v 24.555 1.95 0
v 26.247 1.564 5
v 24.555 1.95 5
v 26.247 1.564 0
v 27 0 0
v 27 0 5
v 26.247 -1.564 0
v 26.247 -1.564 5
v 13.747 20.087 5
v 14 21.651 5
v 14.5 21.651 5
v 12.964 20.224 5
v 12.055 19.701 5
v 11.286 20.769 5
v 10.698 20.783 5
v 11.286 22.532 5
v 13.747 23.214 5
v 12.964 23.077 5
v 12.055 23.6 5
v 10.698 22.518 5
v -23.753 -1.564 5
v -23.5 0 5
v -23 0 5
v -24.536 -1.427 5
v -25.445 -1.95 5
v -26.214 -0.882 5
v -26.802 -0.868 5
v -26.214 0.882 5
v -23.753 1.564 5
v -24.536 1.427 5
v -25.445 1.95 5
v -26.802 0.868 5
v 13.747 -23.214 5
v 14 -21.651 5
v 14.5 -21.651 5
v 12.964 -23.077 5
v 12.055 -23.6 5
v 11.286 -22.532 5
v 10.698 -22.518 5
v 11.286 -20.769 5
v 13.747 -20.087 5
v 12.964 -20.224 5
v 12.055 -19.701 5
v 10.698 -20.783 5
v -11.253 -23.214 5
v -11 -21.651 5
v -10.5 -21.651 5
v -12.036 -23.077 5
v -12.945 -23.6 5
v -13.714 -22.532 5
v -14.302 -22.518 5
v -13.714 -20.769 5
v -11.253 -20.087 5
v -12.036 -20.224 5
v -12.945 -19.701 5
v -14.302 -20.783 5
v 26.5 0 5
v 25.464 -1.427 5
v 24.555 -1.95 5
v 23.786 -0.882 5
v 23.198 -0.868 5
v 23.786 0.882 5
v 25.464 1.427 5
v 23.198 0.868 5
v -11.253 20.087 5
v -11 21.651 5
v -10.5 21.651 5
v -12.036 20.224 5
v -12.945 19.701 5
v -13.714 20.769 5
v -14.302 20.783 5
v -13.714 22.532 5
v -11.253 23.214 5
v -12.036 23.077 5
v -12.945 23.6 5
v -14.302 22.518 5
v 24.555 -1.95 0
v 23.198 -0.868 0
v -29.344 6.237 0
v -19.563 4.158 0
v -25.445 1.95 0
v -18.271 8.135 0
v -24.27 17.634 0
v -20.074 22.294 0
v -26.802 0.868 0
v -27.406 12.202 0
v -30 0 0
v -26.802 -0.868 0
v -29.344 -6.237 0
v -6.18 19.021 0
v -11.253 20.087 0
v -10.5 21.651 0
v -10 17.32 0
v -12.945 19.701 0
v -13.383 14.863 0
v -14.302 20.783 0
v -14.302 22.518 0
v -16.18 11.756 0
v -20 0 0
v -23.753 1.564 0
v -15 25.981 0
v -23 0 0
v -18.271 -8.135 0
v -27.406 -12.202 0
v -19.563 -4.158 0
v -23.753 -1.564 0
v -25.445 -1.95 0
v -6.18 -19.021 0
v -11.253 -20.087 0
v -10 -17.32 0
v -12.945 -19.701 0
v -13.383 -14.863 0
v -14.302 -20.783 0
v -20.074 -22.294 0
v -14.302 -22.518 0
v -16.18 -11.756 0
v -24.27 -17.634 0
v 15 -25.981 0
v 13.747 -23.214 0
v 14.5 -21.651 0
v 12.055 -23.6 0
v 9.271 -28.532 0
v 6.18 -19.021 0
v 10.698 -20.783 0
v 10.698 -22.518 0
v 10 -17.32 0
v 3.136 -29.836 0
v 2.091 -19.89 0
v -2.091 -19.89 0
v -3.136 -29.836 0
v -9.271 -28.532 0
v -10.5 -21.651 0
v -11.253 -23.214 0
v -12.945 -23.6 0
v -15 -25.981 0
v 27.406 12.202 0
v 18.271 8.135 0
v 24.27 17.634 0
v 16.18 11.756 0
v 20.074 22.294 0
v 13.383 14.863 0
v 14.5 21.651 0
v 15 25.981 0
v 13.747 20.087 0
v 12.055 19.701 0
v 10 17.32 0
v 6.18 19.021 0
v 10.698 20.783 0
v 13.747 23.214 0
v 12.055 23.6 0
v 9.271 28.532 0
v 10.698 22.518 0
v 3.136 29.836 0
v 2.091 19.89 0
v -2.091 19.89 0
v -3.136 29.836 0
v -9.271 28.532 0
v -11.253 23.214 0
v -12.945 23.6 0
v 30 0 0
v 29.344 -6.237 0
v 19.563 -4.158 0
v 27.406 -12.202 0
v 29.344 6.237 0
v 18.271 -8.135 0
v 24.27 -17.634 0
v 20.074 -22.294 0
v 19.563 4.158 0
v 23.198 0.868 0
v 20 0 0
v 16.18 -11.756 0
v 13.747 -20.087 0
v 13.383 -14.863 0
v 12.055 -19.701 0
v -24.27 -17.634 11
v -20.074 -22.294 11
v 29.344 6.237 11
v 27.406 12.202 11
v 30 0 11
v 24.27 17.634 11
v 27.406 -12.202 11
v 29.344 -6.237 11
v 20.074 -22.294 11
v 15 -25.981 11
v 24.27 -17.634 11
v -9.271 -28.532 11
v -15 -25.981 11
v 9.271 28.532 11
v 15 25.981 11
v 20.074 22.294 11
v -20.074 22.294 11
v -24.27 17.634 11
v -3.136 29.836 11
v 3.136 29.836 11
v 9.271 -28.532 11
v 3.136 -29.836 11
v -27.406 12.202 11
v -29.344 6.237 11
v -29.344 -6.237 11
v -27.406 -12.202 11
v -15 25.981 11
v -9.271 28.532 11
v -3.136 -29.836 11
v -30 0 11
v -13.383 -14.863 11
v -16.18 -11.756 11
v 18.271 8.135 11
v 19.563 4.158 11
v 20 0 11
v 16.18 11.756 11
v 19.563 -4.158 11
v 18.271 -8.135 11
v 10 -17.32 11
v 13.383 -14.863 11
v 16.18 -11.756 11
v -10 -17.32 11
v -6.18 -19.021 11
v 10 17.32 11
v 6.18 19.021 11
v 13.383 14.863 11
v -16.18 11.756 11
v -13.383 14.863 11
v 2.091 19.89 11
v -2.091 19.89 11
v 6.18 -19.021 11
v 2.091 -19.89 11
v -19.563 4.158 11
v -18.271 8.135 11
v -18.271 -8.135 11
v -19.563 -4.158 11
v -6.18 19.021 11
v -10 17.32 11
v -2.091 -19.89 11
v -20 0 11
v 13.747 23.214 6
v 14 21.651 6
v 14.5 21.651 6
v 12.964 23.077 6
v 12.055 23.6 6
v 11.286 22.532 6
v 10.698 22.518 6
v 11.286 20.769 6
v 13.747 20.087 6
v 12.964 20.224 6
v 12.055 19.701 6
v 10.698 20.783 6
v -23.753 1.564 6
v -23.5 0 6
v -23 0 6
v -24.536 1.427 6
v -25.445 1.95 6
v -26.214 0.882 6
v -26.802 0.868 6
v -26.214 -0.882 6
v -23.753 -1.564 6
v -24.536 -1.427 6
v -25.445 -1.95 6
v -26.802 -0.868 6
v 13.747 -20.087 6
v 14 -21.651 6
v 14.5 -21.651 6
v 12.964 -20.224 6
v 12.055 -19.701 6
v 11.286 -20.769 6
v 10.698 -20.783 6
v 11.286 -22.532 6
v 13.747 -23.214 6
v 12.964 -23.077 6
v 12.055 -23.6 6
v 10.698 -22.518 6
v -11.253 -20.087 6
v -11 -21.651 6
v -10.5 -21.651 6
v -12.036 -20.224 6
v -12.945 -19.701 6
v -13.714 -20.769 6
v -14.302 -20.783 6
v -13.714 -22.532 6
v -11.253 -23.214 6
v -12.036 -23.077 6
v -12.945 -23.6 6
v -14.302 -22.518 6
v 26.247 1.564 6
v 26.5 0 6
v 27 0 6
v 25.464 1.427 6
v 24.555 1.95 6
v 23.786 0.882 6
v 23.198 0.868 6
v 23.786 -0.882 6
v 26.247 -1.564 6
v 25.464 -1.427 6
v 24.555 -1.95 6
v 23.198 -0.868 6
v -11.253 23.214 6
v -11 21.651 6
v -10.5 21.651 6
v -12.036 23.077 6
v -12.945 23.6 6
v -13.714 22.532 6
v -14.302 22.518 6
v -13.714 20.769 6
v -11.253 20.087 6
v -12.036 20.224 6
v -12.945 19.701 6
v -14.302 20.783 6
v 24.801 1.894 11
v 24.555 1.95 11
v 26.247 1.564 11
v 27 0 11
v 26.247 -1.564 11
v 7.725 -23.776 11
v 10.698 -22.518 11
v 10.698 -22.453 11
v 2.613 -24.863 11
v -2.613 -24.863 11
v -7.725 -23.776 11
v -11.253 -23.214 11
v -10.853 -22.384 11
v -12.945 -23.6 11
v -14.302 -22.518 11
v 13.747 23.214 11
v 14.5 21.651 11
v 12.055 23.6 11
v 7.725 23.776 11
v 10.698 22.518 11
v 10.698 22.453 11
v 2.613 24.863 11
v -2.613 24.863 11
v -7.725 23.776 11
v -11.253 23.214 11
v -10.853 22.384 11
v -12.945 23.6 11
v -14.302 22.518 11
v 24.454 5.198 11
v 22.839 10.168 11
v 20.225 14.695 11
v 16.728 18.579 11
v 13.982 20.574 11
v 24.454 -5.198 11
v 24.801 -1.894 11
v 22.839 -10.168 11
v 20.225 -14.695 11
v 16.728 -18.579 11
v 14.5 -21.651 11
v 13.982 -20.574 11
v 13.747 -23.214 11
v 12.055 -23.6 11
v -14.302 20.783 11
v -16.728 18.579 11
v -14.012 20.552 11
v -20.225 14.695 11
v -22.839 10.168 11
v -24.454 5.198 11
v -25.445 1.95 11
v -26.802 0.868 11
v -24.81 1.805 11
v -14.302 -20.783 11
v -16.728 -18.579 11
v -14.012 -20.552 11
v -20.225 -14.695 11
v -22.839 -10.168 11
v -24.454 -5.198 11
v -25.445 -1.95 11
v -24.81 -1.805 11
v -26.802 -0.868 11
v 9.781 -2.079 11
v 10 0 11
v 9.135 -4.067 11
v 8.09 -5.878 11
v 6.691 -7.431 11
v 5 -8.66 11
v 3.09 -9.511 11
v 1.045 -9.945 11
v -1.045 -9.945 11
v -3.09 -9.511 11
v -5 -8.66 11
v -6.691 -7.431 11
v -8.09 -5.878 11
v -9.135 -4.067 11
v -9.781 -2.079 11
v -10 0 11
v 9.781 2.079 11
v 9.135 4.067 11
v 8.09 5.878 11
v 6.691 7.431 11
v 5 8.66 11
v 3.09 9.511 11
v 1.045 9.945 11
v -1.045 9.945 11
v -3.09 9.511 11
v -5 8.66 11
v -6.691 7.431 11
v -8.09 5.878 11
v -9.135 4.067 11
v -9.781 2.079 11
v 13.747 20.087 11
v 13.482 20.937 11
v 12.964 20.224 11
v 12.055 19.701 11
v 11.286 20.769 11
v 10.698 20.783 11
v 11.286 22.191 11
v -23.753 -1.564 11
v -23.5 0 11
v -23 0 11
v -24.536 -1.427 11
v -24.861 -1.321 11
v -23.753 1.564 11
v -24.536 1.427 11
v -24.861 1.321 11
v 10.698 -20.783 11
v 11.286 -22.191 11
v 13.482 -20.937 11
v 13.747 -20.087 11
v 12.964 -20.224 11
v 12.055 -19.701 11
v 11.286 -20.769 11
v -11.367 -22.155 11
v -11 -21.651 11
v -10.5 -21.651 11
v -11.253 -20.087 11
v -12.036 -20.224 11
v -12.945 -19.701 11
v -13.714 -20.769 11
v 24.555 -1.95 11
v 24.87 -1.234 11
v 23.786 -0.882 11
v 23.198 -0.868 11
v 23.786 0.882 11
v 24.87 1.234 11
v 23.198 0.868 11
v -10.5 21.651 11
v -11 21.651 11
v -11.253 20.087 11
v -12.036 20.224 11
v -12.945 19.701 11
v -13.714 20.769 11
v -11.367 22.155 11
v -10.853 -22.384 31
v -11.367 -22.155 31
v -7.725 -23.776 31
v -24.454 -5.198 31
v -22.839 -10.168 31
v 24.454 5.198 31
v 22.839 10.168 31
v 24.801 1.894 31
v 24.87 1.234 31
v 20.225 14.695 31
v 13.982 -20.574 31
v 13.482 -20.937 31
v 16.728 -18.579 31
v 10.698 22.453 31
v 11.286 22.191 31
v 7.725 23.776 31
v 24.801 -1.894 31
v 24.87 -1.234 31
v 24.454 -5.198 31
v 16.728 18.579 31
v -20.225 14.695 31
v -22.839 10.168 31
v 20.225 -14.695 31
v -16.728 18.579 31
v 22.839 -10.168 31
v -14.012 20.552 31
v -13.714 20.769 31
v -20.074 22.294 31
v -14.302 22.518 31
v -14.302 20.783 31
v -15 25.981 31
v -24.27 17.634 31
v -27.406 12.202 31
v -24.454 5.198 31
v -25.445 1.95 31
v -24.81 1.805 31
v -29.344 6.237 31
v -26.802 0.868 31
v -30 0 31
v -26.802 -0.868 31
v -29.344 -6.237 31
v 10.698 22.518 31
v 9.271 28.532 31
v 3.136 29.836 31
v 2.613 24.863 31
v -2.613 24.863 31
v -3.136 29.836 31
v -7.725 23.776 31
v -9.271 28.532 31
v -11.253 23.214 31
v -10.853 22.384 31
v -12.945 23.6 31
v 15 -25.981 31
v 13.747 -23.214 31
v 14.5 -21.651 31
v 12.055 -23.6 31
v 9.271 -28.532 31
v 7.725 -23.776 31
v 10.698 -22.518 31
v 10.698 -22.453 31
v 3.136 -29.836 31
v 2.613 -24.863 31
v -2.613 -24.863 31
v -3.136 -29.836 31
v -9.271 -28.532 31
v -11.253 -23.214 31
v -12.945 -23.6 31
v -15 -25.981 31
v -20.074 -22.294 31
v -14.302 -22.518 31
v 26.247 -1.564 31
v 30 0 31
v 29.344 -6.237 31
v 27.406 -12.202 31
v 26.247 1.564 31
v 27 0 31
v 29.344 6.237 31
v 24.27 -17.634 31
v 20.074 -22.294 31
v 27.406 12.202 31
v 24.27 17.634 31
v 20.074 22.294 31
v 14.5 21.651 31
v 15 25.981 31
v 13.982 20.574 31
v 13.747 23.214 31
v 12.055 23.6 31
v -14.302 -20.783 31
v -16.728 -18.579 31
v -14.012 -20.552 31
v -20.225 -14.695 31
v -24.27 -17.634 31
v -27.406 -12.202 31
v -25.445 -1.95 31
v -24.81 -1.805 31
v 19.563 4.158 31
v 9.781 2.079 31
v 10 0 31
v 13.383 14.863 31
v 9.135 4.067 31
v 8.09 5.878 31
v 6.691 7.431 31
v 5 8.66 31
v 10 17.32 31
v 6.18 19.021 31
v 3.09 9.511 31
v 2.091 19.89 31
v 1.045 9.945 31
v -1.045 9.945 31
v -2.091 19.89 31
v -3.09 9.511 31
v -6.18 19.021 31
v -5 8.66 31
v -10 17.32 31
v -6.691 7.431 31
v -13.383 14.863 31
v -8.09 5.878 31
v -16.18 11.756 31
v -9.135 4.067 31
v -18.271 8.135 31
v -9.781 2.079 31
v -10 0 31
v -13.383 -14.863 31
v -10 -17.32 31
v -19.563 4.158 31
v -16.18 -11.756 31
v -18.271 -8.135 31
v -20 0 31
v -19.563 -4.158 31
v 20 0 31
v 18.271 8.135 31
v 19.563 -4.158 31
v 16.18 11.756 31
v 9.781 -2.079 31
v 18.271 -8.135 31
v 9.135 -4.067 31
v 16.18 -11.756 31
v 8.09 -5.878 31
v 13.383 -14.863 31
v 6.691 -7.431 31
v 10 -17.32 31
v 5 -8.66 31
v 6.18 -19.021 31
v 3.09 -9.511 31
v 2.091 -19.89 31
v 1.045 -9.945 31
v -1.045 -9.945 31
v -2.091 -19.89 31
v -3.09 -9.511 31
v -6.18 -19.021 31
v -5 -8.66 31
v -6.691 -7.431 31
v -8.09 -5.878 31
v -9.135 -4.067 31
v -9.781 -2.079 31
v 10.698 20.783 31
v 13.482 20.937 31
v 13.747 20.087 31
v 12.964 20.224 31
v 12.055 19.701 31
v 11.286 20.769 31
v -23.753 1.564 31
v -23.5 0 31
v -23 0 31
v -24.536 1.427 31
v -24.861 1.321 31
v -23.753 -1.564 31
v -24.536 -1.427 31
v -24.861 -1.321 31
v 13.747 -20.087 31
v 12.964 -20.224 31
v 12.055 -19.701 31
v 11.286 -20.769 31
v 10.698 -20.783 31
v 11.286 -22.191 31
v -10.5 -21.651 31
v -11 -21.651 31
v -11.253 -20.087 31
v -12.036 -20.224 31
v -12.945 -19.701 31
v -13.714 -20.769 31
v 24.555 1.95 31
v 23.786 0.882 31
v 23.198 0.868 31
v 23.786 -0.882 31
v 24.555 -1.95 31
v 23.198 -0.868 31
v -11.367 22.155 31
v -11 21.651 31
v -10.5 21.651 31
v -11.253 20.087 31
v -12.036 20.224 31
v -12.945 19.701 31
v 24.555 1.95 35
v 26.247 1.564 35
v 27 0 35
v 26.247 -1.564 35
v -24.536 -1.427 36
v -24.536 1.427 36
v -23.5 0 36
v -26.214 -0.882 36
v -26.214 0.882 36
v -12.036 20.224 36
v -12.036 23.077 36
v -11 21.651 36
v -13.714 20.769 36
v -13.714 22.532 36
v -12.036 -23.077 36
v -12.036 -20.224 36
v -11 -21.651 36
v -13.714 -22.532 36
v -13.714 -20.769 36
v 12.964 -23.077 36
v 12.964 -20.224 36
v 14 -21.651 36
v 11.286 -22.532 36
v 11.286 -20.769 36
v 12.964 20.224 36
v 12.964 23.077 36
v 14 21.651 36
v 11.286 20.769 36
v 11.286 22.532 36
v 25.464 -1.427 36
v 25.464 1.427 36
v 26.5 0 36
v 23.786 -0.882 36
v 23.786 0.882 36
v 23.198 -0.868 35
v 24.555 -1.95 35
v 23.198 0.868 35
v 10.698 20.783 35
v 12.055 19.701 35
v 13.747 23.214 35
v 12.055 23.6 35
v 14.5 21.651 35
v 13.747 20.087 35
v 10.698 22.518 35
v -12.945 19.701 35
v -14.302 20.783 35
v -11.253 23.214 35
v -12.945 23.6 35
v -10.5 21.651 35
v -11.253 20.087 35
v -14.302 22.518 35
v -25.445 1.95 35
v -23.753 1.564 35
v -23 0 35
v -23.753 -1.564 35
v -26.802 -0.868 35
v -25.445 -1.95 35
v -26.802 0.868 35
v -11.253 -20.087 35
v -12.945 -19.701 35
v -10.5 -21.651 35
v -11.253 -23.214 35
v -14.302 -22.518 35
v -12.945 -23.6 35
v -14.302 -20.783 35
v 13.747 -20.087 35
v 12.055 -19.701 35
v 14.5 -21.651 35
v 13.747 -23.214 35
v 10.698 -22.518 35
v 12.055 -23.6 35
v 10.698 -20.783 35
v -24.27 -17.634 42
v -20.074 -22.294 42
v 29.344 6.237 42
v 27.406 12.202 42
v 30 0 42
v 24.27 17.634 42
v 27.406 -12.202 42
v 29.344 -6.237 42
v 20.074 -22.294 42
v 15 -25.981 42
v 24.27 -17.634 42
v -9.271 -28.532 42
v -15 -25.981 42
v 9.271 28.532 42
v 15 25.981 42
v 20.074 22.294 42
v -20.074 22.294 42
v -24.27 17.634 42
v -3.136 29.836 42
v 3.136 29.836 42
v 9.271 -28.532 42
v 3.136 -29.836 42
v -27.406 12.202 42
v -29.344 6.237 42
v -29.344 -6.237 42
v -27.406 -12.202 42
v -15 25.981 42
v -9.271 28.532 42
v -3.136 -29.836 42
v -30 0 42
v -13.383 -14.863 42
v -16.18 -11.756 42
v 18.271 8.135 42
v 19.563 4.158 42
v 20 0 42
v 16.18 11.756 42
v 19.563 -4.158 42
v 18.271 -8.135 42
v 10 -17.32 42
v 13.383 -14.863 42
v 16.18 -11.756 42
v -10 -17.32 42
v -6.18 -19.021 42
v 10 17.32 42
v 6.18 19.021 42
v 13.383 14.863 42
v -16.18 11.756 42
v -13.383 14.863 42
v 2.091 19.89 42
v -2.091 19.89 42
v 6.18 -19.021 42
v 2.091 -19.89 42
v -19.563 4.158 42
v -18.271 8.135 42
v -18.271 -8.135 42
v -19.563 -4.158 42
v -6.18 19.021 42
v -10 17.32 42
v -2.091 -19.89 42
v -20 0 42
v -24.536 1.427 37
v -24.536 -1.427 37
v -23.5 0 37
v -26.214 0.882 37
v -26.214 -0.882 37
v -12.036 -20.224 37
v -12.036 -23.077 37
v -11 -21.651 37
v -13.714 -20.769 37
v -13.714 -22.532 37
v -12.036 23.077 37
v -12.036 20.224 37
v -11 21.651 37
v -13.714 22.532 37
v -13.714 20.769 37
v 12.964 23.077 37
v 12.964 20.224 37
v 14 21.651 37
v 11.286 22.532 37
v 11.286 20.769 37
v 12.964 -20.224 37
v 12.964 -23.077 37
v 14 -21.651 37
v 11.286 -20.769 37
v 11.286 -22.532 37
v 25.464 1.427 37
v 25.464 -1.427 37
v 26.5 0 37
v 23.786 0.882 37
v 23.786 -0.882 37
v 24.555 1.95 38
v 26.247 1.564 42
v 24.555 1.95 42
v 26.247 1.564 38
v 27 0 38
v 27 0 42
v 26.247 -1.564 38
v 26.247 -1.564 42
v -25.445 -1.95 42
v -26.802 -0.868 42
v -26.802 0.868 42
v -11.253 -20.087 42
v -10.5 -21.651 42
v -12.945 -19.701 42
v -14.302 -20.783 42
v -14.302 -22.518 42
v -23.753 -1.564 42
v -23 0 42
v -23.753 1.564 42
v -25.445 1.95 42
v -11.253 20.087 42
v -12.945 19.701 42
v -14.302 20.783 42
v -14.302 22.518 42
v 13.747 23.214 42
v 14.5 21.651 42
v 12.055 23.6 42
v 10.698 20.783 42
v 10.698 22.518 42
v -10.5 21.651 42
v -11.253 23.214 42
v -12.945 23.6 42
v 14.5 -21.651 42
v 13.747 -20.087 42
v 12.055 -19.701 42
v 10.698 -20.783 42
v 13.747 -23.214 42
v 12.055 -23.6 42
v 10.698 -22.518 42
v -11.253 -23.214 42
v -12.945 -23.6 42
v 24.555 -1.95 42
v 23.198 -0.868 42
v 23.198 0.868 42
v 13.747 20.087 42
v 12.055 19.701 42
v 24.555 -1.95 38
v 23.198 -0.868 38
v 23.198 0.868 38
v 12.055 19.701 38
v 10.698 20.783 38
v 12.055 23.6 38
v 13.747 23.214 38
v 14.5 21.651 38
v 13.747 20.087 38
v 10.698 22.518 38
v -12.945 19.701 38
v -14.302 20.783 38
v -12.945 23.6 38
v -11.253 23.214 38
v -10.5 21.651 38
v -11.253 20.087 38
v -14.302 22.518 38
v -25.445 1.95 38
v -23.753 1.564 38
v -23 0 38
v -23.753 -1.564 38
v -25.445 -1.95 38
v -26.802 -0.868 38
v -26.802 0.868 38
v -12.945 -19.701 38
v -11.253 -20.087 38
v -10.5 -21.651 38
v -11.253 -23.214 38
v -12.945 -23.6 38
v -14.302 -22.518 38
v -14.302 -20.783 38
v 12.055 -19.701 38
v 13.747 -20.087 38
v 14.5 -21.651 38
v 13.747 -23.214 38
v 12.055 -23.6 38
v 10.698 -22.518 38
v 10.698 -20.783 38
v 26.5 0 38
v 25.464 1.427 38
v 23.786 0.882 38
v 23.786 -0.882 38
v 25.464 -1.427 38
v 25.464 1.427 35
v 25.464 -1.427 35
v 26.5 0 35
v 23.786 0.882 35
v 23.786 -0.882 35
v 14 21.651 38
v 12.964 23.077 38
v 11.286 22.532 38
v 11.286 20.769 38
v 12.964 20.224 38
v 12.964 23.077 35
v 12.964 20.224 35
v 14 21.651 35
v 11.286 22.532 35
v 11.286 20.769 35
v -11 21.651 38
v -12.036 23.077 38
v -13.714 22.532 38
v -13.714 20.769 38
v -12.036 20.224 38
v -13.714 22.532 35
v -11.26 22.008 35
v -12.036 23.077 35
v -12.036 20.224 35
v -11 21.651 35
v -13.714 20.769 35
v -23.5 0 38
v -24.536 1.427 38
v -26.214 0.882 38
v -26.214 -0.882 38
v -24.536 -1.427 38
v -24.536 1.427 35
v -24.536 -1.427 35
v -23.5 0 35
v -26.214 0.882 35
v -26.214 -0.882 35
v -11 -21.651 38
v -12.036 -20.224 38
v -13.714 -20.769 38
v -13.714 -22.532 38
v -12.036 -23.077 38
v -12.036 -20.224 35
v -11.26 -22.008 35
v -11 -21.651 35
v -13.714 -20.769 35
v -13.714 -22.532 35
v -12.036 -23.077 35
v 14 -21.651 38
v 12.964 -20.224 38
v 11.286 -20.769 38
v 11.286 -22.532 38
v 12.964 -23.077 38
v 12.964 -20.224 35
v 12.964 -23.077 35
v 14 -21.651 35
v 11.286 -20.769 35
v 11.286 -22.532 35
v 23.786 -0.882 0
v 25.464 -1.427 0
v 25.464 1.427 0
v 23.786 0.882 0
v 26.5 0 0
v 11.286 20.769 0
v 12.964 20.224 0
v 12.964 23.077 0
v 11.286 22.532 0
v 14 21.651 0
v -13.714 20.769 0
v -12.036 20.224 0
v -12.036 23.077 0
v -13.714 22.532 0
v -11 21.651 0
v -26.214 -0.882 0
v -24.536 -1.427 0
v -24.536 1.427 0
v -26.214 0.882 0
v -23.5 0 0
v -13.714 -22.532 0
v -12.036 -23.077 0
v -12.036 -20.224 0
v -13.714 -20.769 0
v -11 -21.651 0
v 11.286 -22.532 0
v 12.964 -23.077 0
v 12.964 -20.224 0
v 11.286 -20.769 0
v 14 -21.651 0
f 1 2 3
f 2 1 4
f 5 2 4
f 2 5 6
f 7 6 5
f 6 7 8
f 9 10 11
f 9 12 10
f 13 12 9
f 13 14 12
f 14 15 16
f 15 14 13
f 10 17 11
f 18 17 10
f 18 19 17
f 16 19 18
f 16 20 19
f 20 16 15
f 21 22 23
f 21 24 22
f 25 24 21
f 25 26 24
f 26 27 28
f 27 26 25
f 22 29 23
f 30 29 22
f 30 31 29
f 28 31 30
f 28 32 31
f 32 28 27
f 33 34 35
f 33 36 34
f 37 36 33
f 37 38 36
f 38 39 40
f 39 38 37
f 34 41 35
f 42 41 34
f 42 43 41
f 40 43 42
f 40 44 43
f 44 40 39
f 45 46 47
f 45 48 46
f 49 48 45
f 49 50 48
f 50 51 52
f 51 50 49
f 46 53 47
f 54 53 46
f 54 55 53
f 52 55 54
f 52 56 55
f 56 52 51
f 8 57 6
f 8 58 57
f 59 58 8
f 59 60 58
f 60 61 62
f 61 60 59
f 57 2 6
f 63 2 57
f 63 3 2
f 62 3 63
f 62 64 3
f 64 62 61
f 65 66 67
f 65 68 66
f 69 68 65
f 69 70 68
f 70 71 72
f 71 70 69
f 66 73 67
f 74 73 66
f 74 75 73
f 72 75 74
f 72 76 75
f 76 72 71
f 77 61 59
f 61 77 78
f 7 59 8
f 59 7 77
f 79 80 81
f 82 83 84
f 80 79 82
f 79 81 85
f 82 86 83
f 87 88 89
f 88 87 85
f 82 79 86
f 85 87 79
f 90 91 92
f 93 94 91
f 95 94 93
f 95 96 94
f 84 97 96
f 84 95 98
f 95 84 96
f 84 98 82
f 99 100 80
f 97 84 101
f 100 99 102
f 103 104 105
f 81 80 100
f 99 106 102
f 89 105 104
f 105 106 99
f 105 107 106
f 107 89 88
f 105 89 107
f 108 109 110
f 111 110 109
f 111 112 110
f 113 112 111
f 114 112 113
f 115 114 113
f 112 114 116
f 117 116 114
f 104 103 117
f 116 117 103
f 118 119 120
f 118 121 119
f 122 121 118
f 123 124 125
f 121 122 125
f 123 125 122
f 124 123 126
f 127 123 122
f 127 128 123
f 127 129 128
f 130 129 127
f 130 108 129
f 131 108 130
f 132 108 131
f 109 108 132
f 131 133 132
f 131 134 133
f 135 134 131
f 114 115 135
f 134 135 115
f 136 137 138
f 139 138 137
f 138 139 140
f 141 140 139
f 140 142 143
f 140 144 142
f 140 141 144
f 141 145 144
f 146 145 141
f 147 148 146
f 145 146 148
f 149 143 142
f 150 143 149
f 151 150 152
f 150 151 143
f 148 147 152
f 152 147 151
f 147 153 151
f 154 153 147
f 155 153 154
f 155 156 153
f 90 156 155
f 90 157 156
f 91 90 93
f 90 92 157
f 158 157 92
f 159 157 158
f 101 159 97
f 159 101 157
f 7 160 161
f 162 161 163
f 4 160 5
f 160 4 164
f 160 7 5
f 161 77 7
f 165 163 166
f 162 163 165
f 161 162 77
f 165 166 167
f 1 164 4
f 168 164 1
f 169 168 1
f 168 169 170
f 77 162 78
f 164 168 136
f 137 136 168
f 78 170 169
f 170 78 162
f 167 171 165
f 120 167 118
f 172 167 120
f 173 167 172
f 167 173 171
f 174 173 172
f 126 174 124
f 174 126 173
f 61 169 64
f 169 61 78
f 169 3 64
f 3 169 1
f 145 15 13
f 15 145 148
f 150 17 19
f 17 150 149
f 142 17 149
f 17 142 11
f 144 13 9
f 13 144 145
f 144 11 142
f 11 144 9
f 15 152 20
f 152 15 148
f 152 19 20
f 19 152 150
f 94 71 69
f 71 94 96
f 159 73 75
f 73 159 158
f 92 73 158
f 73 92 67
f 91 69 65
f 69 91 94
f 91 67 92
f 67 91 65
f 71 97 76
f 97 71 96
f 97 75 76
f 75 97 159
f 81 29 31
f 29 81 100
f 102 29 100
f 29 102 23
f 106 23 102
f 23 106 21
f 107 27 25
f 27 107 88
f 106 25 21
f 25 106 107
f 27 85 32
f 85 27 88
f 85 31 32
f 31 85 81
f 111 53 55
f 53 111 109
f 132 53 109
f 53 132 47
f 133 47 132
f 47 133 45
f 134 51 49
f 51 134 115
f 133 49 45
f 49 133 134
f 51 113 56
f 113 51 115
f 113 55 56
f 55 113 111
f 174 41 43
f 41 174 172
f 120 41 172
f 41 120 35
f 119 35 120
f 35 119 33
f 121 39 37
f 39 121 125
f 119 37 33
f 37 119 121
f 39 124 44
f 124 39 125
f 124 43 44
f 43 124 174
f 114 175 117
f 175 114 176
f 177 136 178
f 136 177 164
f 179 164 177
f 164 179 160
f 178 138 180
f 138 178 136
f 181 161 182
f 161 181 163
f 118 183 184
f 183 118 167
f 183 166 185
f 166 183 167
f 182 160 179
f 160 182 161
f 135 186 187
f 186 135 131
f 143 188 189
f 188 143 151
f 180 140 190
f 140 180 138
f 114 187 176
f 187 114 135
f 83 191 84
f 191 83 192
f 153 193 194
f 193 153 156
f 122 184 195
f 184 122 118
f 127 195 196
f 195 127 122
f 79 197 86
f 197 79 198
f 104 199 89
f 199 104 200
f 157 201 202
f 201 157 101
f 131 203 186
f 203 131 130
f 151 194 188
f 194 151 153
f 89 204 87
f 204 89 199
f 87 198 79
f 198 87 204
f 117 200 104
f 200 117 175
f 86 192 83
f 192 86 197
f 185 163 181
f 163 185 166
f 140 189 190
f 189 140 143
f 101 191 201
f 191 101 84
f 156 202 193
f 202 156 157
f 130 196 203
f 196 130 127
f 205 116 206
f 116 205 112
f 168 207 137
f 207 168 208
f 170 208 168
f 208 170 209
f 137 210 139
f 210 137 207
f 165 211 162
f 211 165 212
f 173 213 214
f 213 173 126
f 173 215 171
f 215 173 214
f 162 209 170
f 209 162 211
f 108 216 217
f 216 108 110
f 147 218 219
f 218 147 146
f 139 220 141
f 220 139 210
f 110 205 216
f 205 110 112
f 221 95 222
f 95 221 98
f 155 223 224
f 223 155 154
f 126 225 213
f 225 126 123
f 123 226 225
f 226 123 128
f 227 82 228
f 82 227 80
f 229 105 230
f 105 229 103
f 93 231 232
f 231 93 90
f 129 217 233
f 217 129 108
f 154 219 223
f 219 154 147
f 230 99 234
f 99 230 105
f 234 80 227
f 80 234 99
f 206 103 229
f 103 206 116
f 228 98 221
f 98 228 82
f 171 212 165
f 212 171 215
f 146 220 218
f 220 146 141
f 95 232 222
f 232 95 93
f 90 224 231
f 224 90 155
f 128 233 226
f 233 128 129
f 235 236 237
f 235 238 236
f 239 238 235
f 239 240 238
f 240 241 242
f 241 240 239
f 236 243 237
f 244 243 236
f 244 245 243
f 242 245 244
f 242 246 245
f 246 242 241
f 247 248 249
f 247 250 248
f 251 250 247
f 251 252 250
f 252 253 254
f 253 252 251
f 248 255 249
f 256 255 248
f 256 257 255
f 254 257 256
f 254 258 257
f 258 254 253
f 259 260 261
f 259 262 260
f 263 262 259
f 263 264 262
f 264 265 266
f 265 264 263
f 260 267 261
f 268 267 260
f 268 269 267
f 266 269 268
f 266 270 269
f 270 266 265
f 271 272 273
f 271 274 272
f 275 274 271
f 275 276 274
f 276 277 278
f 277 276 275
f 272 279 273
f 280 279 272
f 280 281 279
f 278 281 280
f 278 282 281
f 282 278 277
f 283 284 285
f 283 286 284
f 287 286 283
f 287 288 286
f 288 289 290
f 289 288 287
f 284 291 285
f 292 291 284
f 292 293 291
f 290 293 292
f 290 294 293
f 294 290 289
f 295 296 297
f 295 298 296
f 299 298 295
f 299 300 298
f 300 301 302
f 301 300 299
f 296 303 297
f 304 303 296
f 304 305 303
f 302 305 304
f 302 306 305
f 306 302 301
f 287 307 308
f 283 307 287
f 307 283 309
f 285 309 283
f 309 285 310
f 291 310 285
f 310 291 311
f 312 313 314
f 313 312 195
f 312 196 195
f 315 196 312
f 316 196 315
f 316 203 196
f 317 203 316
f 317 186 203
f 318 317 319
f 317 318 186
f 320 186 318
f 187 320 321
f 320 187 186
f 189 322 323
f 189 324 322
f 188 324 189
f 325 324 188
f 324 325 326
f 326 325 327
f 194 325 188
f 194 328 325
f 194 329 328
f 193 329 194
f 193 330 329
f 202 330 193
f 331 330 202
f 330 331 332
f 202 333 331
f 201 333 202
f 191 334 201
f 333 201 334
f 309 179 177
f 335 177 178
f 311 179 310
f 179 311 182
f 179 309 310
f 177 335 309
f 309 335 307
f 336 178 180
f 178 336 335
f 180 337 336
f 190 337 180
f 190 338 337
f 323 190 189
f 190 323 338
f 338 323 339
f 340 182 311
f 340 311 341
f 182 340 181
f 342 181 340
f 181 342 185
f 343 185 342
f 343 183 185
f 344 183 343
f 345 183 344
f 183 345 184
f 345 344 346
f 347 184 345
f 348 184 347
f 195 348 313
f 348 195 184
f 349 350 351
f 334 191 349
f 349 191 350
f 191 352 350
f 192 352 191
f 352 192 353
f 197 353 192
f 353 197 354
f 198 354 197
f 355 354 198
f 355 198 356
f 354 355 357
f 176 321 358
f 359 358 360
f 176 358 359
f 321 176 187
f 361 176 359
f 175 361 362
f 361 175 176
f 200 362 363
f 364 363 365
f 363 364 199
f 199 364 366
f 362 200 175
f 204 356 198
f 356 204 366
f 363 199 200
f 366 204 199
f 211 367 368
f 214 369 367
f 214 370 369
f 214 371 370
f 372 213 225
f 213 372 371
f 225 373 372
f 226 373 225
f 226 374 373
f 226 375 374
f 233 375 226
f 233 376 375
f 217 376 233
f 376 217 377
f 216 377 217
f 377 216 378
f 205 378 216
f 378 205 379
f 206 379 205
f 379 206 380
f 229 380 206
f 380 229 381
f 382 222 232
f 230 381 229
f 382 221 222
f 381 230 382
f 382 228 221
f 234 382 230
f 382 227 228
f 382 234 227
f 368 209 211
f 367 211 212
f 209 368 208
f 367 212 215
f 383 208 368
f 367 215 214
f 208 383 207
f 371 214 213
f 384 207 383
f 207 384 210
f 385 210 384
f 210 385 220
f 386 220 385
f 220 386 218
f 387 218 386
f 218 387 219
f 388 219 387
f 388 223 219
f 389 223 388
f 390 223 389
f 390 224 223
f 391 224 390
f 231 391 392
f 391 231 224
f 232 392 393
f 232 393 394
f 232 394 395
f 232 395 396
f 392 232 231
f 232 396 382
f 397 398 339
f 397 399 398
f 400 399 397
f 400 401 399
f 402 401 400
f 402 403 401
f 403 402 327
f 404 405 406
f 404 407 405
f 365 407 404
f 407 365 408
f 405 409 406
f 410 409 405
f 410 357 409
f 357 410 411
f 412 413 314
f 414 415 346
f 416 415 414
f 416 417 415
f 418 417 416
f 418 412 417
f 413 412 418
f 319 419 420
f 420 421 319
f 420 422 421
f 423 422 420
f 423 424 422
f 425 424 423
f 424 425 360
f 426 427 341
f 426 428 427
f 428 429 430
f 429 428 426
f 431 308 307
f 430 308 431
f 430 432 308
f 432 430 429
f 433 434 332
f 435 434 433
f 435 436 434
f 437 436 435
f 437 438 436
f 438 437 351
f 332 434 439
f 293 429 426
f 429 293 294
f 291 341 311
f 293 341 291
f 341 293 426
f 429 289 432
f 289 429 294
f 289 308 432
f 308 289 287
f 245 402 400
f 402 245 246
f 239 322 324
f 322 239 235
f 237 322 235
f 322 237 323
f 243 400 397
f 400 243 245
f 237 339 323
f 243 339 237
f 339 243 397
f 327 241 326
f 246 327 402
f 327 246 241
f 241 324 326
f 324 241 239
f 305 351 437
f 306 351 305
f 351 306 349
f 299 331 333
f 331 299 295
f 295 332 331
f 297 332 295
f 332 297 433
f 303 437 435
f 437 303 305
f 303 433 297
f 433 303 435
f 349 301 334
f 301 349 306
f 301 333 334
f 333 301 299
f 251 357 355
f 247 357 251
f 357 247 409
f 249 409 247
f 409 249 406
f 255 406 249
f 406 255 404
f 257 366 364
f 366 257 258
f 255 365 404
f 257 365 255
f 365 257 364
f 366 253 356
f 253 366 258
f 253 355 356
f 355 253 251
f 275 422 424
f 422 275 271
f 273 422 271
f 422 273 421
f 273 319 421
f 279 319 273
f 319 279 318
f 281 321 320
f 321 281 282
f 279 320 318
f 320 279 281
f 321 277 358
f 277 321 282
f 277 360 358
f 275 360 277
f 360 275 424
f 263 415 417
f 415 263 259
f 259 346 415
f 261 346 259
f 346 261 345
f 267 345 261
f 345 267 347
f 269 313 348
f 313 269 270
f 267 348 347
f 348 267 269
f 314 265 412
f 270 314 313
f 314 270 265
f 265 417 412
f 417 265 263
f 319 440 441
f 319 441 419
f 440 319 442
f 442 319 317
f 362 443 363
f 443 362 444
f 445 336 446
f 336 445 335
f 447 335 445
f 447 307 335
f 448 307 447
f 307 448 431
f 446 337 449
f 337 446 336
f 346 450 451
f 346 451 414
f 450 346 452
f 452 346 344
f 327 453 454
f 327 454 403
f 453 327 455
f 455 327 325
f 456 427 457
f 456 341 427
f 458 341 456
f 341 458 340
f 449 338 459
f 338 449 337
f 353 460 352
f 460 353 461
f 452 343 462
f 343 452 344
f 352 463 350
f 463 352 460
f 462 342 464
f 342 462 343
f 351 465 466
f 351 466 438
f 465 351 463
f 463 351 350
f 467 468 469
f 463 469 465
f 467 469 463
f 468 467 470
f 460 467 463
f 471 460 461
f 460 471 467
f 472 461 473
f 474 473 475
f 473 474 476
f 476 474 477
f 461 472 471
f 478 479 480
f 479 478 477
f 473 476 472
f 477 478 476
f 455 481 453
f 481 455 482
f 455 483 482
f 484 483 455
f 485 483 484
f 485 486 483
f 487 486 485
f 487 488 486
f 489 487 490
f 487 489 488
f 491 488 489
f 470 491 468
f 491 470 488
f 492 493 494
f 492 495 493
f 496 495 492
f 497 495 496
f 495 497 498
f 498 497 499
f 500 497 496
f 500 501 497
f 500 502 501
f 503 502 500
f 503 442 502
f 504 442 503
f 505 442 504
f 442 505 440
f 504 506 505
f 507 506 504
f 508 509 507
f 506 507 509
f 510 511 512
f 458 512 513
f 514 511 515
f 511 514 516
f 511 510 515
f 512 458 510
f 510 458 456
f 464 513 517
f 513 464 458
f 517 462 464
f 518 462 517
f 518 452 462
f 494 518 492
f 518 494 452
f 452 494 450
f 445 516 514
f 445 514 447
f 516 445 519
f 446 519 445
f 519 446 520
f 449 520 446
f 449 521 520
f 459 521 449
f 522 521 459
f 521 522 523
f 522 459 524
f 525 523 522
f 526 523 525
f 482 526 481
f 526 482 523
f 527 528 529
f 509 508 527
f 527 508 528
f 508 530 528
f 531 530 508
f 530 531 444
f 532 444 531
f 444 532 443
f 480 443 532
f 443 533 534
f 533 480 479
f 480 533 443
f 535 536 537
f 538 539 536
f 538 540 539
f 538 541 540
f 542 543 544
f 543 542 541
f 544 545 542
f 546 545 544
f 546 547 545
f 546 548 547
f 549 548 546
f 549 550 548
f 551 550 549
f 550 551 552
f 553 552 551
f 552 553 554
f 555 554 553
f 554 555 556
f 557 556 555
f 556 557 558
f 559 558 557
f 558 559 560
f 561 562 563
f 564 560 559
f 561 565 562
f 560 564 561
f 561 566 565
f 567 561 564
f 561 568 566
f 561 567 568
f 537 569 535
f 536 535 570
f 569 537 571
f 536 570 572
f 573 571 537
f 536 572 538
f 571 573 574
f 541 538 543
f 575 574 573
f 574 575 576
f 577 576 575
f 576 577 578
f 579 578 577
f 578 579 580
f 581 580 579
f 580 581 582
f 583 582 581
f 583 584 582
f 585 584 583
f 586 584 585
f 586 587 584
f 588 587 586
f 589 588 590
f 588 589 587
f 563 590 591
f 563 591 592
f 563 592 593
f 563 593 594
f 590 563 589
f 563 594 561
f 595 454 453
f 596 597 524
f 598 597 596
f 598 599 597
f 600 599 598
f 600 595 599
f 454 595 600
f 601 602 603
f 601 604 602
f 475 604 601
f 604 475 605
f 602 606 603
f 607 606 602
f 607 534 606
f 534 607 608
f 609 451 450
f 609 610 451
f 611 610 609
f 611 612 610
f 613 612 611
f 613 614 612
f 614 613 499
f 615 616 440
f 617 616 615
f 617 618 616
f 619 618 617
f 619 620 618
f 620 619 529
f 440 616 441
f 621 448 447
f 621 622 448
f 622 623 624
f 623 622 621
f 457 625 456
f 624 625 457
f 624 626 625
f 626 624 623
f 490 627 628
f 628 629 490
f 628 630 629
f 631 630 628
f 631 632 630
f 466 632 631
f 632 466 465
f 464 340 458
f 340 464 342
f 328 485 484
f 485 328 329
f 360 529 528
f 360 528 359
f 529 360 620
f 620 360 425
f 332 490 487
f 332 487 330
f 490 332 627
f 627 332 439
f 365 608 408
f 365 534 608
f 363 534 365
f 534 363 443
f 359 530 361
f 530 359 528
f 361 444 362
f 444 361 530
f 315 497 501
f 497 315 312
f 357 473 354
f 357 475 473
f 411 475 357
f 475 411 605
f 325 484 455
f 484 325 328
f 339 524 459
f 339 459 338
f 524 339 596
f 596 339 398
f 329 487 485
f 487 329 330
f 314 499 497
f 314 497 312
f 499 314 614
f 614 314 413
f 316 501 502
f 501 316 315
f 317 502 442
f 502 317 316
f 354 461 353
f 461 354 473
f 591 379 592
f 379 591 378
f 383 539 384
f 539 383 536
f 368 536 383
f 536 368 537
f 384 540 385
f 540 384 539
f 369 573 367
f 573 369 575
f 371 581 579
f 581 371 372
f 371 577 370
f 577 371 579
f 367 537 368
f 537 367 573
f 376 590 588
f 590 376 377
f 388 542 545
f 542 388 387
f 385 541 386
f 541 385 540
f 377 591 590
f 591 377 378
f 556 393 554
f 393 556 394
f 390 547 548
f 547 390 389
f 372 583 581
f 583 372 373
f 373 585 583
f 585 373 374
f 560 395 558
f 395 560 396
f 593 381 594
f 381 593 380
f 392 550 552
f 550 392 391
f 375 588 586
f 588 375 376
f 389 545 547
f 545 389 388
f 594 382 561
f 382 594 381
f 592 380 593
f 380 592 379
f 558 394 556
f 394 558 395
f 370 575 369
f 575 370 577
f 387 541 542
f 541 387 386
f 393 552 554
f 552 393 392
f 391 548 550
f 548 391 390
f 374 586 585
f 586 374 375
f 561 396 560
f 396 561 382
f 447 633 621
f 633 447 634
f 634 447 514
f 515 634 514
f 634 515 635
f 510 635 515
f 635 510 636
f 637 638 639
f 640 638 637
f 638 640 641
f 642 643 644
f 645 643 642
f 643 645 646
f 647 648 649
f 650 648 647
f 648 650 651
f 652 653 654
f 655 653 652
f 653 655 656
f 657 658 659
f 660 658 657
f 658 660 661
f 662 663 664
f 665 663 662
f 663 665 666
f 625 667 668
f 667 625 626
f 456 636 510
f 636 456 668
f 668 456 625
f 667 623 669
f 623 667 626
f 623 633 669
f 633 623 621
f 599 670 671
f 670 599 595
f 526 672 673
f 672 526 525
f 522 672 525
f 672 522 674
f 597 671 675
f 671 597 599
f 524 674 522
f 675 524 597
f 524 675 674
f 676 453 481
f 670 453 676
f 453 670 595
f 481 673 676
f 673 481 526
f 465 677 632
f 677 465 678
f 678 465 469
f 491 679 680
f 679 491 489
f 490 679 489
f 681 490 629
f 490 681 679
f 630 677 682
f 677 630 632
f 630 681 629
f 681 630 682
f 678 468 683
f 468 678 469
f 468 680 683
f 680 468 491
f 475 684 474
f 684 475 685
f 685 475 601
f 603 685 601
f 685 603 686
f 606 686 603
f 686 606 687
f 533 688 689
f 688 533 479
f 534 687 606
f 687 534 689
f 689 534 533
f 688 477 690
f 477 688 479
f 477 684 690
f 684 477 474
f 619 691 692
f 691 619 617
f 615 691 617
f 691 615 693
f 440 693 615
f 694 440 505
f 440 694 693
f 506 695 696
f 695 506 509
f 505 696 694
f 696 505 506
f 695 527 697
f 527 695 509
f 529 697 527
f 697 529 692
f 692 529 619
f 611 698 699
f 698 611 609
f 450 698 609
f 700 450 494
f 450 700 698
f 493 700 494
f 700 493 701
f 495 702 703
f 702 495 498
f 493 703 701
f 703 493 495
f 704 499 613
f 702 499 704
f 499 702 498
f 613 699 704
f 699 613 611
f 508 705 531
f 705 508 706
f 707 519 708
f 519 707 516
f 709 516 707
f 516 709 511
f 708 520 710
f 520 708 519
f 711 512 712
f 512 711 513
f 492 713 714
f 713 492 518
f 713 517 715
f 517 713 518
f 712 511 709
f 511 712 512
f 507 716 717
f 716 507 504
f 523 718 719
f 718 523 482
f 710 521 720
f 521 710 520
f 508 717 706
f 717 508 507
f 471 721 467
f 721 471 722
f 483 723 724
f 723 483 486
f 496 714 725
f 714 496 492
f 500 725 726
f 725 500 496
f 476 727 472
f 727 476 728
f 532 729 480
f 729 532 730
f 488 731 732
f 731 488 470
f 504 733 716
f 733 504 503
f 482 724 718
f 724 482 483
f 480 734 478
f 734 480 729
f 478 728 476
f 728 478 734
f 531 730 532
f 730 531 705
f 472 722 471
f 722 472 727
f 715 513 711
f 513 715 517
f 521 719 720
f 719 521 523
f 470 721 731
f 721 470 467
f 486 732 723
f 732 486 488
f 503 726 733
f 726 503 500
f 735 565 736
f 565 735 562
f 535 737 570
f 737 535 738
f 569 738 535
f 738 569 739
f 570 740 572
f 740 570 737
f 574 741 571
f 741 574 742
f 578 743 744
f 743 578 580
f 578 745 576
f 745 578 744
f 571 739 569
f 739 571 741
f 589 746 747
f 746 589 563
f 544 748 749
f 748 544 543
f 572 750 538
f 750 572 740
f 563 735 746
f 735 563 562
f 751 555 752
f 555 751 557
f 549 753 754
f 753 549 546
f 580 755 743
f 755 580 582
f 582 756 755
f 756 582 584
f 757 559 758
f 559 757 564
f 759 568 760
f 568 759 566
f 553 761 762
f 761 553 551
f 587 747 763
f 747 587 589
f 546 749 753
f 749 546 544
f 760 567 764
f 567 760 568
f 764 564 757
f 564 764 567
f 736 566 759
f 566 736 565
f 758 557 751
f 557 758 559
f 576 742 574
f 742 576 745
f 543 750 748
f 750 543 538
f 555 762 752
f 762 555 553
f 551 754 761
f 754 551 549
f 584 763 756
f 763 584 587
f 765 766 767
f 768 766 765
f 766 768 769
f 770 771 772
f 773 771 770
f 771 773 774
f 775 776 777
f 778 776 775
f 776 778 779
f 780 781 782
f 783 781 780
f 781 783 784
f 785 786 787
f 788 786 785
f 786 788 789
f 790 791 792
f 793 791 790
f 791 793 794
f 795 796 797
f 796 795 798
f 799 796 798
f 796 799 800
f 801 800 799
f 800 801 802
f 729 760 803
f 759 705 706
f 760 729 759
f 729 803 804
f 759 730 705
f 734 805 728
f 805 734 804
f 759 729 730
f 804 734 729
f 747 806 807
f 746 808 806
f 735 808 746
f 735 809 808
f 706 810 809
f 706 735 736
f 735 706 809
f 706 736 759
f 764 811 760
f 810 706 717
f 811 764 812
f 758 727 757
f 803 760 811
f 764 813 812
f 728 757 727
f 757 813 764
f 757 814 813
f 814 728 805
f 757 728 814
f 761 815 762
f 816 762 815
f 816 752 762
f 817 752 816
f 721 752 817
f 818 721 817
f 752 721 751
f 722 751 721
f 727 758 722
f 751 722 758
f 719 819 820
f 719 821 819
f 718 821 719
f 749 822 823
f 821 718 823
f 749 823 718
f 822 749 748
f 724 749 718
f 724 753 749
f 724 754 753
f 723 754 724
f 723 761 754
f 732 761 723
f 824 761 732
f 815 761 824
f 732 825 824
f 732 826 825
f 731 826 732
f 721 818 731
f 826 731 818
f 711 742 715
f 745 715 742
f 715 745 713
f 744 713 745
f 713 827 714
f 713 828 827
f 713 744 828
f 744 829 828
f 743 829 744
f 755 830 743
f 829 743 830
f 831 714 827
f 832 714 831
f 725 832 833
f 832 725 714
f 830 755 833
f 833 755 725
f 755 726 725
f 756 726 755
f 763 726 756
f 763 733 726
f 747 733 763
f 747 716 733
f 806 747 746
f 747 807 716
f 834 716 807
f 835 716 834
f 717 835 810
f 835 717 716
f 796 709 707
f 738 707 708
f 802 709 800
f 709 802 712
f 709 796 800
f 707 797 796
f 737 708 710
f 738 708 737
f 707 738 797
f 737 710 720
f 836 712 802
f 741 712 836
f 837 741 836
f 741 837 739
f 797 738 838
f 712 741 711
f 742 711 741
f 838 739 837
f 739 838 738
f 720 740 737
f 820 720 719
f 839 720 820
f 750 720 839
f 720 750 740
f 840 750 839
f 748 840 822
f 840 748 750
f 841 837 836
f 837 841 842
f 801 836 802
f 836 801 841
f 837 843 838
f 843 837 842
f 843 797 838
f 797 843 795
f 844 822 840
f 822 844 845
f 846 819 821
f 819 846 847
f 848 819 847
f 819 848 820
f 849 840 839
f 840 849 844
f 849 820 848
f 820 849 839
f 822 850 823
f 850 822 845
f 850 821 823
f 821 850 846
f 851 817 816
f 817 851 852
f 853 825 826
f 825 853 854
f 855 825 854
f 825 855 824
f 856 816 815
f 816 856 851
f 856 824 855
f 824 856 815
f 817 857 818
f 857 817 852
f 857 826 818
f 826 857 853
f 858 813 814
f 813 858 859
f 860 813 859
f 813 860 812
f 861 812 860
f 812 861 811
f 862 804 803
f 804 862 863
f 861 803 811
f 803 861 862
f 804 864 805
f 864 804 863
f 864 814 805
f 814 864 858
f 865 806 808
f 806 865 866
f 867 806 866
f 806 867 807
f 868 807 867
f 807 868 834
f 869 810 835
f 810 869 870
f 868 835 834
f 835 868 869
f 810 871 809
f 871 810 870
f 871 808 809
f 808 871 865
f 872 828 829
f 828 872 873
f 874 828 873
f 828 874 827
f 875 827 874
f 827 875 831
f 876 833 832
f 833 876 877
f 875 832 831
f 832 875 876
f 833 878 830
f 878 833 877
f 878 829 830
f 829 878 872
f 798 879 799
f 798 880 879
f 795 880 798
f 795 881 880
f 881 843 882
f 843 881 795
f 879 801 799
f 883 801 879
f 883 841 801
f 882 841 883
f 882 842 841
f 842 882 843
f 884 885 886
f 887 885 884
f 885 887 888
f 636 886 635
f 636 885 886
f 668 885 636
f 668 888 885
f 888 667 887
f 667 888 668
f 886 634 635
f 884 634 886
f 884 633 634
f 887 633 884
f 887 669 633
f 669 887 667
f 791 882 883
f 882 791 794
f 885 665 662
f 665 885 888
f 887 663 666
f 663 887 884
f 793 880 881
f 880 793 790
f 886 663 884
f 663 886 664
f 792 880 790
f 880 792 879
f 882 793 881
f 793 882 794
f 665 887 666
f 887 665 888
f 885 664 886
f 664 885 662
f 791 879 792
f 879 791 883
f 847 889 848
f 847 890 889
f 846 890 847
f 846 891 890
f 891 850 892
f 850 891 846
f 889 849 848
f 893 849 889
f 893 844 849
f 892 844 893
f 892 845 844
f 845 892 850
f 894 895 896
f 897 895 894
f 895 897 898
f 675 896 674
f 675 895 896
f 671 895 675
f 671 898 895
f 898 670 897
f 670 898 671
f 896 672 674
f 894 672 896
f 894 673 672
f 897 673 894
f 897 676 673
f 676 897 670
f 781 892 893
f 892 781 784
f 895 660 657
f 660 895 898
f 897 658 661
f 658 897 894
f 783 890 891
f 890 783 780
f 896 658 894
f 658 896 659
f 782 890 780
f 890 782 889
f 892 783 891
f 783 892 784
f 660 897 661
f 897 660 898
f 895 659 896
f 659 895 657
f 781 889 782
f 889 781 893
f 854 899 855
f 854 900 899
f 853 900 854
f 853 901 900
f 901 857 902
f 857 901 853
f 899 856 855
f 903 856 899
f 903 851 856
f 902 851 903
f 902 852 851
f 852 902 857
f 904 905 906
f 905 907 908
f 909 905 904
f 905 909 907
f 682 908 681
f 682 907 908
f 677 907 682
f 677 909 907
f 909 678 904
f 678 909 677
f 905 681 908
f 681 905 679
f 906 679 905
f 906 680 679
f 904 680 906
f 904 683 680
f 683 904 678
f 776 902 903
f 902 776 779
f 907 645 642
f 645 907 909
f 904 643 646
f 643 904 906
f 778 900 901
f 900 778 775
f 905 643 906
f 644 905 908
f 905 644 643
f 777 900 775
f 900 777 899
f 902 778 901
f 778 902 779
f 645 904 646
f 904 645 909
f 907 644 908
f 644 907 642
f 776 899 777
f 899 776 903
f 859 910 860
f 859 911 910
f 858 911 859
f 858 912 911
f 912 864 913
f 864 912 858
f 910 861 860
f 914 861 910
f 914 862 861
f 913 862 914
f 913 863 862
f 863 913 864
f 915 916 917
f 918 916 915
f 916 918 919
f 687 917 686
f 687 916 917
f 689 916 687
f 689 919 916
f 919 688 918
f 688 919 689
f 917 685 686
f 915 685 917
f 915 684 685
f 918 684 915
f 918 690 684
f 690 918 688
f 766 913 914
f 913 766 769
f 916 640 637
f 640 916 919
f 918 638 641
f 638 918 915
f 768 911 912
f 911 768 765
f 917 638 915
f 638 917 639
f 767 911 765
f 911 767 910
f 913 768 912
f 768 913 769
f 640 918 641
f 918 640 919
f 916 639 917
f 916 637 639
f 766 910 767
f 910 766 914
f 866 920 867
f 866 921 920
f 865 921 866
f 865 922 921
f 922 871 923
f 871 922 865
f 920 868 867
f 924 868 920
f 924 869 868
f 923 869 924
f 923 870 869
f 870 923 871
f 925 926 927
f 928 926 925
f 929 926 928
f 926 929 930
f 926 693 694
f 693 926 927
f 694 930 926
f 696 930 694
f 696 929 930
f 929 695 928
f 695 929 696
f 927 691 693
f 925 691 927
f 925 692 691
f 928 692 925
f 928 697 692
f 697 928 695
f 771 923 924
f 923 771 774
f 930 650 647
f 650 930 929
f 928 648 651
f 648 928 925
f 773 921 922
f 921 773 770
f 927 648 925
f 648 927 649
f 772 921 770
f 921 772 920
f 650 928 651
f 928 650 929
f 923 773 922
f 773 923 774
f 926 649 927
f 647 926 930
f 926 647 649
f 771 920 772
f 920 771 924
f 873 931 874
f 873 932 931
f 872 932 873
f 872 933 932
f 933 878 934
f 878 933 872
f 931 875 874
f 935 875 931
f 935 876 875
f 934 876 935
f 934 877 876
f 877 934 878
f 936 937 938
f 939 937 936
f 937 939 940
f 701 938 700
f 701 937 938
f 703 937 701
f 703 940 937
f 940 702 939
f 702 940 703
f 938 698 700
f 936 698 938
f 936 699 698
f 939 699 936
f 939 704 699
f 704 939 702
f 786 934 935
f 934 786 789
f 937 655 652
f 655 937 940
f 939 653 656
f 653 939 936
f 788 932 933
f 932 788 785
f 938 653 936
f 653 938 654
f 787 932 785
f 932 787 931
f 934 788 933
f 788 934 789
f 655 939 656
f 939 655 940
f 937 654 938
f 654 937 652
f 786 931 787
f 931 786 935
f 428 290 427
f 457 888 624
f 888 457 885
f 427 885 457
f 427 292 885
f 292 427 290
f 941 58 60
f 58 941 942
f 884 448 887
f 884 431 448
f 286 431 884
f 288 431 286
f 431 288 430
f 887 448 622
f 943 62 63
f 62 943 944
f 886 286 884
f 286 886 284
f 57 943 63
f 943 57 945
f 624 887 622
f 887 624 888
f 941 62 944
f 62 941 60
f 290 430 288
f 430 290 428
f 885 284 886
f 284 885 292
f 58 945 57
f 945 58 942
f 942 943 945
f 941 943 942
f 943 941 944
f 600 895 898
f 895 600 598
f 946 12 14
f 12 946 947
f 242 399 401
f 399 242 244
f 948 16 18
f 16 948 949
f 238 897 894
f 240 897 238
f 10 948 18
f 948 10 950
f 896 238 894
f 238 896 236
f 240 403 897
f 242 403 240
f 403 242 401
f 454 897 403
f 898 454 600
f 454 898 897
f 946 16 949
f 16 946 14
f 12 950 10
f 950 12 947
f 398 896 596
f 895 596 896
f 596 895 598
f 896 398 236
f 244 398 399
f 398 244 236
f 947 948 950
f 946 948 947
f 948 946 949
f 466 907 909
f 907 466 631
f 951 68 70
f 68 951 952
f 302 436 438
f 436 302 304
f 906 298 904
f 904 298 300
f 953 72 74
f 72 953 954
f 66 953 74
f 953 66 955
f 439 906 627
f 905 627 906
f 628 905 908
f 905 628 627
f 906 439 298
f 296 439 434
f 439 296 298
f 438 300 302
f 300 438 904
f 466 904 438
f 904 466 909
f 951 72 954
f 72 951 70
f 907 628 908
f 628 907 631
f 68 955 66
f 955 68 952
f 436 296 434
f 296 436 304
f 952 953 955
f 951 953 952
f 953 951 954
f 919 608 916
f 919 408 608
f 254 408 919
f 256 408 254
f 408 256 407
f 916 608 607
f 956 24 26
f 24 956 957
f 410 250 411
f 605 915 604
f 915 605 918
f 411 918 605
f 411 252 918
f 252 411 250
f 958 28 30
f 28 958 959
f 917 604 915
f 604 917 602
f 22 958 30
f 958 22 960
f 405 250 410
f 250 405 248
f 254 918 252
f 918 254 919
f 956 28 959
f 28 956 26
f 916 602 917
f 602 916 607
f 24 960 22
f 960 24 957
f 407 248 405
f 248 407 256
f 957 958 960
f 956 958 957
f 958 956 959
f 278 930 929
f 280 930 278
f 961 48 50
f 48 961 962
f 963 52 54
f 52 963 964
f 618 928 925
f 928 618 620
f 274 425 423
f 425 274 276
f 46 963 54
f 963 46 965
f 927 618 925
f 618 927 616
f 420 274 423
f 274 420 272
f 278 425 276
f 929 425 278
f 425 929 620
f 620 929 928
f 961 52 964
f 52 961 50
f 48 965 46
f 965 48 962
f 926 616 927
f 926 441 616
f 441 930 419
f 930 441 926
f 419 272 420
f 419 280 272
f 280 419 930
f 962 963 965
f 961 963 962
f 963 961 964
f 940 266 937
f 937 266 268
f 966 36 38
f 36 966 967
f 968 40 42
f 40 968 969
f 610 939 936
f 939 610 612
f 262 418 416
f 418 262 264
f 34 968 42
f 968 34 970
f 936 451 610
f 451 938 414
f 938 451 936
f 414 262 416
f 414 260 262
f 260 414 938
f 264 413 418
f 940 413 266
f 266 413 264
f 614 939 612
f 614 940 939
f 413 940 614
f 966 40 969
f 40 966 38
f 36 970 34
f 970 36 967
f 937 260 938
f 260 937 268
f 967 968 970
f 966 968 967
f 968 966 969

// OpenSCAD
// Parameters for components
module flange_plate() {
    difference() {
        cylinder(h=5, r=30); // Outer cylinder
        cylinder(h=5, r=20); // Inner hole
        for (i = [0:60:300]) { // Bolt holes evenly distributed
            translate([25*cos(i), 25*sin(i), 0])
                cylinder(h=5, r=2);
        }
    }
}

module spacer_ring() {
    difference() {
        cylinder(h=1, r=30); // Outer cylinder with reduced thickness
        cylinder(h=1, r=20); // Inner hole
    }
}

module central_craft() {
    difference() {
        cylinder(h=20, r=25); // Outer cylinder with smooth surface
        cylinder(h=20, r=10); // Inner hole
    }
}

module bolt() {
    cylinder(h=35, r=1.5); // Elongated and thinner bolt body
}

module nut() {
    difference() {
        cylinder(h=3, r=3.5, $fn=6); // Smaller hexagonal cylinder
        cylinder(h=3, r=1.5); // Inner threading
    }
}

// Assembly
module flexible_coupling() {
    // Layer 1: Top flange plate
    translate([0, 0, 0])
        flange_plate();

    // Layer 2: Spacer ring
    translate([0, 0, 5])
        spacer_ring();

    // Layer 3: Second flange plate
    translate([0, 0, 6])
        flange_plate();

    // Layer 4: Central craft
    translate([0, 0, 11])
        central_craft();

    // Layer 5: Third flange plate
    translate([0, 0, 31])
        flange_plate();

    // Layer 6: Second spacer ring
    translate([0, 0, 36])
        spacer_ring();

    // Layer 7: Bottom flange plate
    translate([0, 0, 37])
        flange_plate();

    // Bolts and nuts
    for (i = [0:60:300]) {
        translate([25*cos(i), 25*sin(i), 0])
            bolt();
        translate([25*cos(i), 25*sin(i), 35])
            nut();
    }
}

// Render the flexible coupling
flexible_coupling();
